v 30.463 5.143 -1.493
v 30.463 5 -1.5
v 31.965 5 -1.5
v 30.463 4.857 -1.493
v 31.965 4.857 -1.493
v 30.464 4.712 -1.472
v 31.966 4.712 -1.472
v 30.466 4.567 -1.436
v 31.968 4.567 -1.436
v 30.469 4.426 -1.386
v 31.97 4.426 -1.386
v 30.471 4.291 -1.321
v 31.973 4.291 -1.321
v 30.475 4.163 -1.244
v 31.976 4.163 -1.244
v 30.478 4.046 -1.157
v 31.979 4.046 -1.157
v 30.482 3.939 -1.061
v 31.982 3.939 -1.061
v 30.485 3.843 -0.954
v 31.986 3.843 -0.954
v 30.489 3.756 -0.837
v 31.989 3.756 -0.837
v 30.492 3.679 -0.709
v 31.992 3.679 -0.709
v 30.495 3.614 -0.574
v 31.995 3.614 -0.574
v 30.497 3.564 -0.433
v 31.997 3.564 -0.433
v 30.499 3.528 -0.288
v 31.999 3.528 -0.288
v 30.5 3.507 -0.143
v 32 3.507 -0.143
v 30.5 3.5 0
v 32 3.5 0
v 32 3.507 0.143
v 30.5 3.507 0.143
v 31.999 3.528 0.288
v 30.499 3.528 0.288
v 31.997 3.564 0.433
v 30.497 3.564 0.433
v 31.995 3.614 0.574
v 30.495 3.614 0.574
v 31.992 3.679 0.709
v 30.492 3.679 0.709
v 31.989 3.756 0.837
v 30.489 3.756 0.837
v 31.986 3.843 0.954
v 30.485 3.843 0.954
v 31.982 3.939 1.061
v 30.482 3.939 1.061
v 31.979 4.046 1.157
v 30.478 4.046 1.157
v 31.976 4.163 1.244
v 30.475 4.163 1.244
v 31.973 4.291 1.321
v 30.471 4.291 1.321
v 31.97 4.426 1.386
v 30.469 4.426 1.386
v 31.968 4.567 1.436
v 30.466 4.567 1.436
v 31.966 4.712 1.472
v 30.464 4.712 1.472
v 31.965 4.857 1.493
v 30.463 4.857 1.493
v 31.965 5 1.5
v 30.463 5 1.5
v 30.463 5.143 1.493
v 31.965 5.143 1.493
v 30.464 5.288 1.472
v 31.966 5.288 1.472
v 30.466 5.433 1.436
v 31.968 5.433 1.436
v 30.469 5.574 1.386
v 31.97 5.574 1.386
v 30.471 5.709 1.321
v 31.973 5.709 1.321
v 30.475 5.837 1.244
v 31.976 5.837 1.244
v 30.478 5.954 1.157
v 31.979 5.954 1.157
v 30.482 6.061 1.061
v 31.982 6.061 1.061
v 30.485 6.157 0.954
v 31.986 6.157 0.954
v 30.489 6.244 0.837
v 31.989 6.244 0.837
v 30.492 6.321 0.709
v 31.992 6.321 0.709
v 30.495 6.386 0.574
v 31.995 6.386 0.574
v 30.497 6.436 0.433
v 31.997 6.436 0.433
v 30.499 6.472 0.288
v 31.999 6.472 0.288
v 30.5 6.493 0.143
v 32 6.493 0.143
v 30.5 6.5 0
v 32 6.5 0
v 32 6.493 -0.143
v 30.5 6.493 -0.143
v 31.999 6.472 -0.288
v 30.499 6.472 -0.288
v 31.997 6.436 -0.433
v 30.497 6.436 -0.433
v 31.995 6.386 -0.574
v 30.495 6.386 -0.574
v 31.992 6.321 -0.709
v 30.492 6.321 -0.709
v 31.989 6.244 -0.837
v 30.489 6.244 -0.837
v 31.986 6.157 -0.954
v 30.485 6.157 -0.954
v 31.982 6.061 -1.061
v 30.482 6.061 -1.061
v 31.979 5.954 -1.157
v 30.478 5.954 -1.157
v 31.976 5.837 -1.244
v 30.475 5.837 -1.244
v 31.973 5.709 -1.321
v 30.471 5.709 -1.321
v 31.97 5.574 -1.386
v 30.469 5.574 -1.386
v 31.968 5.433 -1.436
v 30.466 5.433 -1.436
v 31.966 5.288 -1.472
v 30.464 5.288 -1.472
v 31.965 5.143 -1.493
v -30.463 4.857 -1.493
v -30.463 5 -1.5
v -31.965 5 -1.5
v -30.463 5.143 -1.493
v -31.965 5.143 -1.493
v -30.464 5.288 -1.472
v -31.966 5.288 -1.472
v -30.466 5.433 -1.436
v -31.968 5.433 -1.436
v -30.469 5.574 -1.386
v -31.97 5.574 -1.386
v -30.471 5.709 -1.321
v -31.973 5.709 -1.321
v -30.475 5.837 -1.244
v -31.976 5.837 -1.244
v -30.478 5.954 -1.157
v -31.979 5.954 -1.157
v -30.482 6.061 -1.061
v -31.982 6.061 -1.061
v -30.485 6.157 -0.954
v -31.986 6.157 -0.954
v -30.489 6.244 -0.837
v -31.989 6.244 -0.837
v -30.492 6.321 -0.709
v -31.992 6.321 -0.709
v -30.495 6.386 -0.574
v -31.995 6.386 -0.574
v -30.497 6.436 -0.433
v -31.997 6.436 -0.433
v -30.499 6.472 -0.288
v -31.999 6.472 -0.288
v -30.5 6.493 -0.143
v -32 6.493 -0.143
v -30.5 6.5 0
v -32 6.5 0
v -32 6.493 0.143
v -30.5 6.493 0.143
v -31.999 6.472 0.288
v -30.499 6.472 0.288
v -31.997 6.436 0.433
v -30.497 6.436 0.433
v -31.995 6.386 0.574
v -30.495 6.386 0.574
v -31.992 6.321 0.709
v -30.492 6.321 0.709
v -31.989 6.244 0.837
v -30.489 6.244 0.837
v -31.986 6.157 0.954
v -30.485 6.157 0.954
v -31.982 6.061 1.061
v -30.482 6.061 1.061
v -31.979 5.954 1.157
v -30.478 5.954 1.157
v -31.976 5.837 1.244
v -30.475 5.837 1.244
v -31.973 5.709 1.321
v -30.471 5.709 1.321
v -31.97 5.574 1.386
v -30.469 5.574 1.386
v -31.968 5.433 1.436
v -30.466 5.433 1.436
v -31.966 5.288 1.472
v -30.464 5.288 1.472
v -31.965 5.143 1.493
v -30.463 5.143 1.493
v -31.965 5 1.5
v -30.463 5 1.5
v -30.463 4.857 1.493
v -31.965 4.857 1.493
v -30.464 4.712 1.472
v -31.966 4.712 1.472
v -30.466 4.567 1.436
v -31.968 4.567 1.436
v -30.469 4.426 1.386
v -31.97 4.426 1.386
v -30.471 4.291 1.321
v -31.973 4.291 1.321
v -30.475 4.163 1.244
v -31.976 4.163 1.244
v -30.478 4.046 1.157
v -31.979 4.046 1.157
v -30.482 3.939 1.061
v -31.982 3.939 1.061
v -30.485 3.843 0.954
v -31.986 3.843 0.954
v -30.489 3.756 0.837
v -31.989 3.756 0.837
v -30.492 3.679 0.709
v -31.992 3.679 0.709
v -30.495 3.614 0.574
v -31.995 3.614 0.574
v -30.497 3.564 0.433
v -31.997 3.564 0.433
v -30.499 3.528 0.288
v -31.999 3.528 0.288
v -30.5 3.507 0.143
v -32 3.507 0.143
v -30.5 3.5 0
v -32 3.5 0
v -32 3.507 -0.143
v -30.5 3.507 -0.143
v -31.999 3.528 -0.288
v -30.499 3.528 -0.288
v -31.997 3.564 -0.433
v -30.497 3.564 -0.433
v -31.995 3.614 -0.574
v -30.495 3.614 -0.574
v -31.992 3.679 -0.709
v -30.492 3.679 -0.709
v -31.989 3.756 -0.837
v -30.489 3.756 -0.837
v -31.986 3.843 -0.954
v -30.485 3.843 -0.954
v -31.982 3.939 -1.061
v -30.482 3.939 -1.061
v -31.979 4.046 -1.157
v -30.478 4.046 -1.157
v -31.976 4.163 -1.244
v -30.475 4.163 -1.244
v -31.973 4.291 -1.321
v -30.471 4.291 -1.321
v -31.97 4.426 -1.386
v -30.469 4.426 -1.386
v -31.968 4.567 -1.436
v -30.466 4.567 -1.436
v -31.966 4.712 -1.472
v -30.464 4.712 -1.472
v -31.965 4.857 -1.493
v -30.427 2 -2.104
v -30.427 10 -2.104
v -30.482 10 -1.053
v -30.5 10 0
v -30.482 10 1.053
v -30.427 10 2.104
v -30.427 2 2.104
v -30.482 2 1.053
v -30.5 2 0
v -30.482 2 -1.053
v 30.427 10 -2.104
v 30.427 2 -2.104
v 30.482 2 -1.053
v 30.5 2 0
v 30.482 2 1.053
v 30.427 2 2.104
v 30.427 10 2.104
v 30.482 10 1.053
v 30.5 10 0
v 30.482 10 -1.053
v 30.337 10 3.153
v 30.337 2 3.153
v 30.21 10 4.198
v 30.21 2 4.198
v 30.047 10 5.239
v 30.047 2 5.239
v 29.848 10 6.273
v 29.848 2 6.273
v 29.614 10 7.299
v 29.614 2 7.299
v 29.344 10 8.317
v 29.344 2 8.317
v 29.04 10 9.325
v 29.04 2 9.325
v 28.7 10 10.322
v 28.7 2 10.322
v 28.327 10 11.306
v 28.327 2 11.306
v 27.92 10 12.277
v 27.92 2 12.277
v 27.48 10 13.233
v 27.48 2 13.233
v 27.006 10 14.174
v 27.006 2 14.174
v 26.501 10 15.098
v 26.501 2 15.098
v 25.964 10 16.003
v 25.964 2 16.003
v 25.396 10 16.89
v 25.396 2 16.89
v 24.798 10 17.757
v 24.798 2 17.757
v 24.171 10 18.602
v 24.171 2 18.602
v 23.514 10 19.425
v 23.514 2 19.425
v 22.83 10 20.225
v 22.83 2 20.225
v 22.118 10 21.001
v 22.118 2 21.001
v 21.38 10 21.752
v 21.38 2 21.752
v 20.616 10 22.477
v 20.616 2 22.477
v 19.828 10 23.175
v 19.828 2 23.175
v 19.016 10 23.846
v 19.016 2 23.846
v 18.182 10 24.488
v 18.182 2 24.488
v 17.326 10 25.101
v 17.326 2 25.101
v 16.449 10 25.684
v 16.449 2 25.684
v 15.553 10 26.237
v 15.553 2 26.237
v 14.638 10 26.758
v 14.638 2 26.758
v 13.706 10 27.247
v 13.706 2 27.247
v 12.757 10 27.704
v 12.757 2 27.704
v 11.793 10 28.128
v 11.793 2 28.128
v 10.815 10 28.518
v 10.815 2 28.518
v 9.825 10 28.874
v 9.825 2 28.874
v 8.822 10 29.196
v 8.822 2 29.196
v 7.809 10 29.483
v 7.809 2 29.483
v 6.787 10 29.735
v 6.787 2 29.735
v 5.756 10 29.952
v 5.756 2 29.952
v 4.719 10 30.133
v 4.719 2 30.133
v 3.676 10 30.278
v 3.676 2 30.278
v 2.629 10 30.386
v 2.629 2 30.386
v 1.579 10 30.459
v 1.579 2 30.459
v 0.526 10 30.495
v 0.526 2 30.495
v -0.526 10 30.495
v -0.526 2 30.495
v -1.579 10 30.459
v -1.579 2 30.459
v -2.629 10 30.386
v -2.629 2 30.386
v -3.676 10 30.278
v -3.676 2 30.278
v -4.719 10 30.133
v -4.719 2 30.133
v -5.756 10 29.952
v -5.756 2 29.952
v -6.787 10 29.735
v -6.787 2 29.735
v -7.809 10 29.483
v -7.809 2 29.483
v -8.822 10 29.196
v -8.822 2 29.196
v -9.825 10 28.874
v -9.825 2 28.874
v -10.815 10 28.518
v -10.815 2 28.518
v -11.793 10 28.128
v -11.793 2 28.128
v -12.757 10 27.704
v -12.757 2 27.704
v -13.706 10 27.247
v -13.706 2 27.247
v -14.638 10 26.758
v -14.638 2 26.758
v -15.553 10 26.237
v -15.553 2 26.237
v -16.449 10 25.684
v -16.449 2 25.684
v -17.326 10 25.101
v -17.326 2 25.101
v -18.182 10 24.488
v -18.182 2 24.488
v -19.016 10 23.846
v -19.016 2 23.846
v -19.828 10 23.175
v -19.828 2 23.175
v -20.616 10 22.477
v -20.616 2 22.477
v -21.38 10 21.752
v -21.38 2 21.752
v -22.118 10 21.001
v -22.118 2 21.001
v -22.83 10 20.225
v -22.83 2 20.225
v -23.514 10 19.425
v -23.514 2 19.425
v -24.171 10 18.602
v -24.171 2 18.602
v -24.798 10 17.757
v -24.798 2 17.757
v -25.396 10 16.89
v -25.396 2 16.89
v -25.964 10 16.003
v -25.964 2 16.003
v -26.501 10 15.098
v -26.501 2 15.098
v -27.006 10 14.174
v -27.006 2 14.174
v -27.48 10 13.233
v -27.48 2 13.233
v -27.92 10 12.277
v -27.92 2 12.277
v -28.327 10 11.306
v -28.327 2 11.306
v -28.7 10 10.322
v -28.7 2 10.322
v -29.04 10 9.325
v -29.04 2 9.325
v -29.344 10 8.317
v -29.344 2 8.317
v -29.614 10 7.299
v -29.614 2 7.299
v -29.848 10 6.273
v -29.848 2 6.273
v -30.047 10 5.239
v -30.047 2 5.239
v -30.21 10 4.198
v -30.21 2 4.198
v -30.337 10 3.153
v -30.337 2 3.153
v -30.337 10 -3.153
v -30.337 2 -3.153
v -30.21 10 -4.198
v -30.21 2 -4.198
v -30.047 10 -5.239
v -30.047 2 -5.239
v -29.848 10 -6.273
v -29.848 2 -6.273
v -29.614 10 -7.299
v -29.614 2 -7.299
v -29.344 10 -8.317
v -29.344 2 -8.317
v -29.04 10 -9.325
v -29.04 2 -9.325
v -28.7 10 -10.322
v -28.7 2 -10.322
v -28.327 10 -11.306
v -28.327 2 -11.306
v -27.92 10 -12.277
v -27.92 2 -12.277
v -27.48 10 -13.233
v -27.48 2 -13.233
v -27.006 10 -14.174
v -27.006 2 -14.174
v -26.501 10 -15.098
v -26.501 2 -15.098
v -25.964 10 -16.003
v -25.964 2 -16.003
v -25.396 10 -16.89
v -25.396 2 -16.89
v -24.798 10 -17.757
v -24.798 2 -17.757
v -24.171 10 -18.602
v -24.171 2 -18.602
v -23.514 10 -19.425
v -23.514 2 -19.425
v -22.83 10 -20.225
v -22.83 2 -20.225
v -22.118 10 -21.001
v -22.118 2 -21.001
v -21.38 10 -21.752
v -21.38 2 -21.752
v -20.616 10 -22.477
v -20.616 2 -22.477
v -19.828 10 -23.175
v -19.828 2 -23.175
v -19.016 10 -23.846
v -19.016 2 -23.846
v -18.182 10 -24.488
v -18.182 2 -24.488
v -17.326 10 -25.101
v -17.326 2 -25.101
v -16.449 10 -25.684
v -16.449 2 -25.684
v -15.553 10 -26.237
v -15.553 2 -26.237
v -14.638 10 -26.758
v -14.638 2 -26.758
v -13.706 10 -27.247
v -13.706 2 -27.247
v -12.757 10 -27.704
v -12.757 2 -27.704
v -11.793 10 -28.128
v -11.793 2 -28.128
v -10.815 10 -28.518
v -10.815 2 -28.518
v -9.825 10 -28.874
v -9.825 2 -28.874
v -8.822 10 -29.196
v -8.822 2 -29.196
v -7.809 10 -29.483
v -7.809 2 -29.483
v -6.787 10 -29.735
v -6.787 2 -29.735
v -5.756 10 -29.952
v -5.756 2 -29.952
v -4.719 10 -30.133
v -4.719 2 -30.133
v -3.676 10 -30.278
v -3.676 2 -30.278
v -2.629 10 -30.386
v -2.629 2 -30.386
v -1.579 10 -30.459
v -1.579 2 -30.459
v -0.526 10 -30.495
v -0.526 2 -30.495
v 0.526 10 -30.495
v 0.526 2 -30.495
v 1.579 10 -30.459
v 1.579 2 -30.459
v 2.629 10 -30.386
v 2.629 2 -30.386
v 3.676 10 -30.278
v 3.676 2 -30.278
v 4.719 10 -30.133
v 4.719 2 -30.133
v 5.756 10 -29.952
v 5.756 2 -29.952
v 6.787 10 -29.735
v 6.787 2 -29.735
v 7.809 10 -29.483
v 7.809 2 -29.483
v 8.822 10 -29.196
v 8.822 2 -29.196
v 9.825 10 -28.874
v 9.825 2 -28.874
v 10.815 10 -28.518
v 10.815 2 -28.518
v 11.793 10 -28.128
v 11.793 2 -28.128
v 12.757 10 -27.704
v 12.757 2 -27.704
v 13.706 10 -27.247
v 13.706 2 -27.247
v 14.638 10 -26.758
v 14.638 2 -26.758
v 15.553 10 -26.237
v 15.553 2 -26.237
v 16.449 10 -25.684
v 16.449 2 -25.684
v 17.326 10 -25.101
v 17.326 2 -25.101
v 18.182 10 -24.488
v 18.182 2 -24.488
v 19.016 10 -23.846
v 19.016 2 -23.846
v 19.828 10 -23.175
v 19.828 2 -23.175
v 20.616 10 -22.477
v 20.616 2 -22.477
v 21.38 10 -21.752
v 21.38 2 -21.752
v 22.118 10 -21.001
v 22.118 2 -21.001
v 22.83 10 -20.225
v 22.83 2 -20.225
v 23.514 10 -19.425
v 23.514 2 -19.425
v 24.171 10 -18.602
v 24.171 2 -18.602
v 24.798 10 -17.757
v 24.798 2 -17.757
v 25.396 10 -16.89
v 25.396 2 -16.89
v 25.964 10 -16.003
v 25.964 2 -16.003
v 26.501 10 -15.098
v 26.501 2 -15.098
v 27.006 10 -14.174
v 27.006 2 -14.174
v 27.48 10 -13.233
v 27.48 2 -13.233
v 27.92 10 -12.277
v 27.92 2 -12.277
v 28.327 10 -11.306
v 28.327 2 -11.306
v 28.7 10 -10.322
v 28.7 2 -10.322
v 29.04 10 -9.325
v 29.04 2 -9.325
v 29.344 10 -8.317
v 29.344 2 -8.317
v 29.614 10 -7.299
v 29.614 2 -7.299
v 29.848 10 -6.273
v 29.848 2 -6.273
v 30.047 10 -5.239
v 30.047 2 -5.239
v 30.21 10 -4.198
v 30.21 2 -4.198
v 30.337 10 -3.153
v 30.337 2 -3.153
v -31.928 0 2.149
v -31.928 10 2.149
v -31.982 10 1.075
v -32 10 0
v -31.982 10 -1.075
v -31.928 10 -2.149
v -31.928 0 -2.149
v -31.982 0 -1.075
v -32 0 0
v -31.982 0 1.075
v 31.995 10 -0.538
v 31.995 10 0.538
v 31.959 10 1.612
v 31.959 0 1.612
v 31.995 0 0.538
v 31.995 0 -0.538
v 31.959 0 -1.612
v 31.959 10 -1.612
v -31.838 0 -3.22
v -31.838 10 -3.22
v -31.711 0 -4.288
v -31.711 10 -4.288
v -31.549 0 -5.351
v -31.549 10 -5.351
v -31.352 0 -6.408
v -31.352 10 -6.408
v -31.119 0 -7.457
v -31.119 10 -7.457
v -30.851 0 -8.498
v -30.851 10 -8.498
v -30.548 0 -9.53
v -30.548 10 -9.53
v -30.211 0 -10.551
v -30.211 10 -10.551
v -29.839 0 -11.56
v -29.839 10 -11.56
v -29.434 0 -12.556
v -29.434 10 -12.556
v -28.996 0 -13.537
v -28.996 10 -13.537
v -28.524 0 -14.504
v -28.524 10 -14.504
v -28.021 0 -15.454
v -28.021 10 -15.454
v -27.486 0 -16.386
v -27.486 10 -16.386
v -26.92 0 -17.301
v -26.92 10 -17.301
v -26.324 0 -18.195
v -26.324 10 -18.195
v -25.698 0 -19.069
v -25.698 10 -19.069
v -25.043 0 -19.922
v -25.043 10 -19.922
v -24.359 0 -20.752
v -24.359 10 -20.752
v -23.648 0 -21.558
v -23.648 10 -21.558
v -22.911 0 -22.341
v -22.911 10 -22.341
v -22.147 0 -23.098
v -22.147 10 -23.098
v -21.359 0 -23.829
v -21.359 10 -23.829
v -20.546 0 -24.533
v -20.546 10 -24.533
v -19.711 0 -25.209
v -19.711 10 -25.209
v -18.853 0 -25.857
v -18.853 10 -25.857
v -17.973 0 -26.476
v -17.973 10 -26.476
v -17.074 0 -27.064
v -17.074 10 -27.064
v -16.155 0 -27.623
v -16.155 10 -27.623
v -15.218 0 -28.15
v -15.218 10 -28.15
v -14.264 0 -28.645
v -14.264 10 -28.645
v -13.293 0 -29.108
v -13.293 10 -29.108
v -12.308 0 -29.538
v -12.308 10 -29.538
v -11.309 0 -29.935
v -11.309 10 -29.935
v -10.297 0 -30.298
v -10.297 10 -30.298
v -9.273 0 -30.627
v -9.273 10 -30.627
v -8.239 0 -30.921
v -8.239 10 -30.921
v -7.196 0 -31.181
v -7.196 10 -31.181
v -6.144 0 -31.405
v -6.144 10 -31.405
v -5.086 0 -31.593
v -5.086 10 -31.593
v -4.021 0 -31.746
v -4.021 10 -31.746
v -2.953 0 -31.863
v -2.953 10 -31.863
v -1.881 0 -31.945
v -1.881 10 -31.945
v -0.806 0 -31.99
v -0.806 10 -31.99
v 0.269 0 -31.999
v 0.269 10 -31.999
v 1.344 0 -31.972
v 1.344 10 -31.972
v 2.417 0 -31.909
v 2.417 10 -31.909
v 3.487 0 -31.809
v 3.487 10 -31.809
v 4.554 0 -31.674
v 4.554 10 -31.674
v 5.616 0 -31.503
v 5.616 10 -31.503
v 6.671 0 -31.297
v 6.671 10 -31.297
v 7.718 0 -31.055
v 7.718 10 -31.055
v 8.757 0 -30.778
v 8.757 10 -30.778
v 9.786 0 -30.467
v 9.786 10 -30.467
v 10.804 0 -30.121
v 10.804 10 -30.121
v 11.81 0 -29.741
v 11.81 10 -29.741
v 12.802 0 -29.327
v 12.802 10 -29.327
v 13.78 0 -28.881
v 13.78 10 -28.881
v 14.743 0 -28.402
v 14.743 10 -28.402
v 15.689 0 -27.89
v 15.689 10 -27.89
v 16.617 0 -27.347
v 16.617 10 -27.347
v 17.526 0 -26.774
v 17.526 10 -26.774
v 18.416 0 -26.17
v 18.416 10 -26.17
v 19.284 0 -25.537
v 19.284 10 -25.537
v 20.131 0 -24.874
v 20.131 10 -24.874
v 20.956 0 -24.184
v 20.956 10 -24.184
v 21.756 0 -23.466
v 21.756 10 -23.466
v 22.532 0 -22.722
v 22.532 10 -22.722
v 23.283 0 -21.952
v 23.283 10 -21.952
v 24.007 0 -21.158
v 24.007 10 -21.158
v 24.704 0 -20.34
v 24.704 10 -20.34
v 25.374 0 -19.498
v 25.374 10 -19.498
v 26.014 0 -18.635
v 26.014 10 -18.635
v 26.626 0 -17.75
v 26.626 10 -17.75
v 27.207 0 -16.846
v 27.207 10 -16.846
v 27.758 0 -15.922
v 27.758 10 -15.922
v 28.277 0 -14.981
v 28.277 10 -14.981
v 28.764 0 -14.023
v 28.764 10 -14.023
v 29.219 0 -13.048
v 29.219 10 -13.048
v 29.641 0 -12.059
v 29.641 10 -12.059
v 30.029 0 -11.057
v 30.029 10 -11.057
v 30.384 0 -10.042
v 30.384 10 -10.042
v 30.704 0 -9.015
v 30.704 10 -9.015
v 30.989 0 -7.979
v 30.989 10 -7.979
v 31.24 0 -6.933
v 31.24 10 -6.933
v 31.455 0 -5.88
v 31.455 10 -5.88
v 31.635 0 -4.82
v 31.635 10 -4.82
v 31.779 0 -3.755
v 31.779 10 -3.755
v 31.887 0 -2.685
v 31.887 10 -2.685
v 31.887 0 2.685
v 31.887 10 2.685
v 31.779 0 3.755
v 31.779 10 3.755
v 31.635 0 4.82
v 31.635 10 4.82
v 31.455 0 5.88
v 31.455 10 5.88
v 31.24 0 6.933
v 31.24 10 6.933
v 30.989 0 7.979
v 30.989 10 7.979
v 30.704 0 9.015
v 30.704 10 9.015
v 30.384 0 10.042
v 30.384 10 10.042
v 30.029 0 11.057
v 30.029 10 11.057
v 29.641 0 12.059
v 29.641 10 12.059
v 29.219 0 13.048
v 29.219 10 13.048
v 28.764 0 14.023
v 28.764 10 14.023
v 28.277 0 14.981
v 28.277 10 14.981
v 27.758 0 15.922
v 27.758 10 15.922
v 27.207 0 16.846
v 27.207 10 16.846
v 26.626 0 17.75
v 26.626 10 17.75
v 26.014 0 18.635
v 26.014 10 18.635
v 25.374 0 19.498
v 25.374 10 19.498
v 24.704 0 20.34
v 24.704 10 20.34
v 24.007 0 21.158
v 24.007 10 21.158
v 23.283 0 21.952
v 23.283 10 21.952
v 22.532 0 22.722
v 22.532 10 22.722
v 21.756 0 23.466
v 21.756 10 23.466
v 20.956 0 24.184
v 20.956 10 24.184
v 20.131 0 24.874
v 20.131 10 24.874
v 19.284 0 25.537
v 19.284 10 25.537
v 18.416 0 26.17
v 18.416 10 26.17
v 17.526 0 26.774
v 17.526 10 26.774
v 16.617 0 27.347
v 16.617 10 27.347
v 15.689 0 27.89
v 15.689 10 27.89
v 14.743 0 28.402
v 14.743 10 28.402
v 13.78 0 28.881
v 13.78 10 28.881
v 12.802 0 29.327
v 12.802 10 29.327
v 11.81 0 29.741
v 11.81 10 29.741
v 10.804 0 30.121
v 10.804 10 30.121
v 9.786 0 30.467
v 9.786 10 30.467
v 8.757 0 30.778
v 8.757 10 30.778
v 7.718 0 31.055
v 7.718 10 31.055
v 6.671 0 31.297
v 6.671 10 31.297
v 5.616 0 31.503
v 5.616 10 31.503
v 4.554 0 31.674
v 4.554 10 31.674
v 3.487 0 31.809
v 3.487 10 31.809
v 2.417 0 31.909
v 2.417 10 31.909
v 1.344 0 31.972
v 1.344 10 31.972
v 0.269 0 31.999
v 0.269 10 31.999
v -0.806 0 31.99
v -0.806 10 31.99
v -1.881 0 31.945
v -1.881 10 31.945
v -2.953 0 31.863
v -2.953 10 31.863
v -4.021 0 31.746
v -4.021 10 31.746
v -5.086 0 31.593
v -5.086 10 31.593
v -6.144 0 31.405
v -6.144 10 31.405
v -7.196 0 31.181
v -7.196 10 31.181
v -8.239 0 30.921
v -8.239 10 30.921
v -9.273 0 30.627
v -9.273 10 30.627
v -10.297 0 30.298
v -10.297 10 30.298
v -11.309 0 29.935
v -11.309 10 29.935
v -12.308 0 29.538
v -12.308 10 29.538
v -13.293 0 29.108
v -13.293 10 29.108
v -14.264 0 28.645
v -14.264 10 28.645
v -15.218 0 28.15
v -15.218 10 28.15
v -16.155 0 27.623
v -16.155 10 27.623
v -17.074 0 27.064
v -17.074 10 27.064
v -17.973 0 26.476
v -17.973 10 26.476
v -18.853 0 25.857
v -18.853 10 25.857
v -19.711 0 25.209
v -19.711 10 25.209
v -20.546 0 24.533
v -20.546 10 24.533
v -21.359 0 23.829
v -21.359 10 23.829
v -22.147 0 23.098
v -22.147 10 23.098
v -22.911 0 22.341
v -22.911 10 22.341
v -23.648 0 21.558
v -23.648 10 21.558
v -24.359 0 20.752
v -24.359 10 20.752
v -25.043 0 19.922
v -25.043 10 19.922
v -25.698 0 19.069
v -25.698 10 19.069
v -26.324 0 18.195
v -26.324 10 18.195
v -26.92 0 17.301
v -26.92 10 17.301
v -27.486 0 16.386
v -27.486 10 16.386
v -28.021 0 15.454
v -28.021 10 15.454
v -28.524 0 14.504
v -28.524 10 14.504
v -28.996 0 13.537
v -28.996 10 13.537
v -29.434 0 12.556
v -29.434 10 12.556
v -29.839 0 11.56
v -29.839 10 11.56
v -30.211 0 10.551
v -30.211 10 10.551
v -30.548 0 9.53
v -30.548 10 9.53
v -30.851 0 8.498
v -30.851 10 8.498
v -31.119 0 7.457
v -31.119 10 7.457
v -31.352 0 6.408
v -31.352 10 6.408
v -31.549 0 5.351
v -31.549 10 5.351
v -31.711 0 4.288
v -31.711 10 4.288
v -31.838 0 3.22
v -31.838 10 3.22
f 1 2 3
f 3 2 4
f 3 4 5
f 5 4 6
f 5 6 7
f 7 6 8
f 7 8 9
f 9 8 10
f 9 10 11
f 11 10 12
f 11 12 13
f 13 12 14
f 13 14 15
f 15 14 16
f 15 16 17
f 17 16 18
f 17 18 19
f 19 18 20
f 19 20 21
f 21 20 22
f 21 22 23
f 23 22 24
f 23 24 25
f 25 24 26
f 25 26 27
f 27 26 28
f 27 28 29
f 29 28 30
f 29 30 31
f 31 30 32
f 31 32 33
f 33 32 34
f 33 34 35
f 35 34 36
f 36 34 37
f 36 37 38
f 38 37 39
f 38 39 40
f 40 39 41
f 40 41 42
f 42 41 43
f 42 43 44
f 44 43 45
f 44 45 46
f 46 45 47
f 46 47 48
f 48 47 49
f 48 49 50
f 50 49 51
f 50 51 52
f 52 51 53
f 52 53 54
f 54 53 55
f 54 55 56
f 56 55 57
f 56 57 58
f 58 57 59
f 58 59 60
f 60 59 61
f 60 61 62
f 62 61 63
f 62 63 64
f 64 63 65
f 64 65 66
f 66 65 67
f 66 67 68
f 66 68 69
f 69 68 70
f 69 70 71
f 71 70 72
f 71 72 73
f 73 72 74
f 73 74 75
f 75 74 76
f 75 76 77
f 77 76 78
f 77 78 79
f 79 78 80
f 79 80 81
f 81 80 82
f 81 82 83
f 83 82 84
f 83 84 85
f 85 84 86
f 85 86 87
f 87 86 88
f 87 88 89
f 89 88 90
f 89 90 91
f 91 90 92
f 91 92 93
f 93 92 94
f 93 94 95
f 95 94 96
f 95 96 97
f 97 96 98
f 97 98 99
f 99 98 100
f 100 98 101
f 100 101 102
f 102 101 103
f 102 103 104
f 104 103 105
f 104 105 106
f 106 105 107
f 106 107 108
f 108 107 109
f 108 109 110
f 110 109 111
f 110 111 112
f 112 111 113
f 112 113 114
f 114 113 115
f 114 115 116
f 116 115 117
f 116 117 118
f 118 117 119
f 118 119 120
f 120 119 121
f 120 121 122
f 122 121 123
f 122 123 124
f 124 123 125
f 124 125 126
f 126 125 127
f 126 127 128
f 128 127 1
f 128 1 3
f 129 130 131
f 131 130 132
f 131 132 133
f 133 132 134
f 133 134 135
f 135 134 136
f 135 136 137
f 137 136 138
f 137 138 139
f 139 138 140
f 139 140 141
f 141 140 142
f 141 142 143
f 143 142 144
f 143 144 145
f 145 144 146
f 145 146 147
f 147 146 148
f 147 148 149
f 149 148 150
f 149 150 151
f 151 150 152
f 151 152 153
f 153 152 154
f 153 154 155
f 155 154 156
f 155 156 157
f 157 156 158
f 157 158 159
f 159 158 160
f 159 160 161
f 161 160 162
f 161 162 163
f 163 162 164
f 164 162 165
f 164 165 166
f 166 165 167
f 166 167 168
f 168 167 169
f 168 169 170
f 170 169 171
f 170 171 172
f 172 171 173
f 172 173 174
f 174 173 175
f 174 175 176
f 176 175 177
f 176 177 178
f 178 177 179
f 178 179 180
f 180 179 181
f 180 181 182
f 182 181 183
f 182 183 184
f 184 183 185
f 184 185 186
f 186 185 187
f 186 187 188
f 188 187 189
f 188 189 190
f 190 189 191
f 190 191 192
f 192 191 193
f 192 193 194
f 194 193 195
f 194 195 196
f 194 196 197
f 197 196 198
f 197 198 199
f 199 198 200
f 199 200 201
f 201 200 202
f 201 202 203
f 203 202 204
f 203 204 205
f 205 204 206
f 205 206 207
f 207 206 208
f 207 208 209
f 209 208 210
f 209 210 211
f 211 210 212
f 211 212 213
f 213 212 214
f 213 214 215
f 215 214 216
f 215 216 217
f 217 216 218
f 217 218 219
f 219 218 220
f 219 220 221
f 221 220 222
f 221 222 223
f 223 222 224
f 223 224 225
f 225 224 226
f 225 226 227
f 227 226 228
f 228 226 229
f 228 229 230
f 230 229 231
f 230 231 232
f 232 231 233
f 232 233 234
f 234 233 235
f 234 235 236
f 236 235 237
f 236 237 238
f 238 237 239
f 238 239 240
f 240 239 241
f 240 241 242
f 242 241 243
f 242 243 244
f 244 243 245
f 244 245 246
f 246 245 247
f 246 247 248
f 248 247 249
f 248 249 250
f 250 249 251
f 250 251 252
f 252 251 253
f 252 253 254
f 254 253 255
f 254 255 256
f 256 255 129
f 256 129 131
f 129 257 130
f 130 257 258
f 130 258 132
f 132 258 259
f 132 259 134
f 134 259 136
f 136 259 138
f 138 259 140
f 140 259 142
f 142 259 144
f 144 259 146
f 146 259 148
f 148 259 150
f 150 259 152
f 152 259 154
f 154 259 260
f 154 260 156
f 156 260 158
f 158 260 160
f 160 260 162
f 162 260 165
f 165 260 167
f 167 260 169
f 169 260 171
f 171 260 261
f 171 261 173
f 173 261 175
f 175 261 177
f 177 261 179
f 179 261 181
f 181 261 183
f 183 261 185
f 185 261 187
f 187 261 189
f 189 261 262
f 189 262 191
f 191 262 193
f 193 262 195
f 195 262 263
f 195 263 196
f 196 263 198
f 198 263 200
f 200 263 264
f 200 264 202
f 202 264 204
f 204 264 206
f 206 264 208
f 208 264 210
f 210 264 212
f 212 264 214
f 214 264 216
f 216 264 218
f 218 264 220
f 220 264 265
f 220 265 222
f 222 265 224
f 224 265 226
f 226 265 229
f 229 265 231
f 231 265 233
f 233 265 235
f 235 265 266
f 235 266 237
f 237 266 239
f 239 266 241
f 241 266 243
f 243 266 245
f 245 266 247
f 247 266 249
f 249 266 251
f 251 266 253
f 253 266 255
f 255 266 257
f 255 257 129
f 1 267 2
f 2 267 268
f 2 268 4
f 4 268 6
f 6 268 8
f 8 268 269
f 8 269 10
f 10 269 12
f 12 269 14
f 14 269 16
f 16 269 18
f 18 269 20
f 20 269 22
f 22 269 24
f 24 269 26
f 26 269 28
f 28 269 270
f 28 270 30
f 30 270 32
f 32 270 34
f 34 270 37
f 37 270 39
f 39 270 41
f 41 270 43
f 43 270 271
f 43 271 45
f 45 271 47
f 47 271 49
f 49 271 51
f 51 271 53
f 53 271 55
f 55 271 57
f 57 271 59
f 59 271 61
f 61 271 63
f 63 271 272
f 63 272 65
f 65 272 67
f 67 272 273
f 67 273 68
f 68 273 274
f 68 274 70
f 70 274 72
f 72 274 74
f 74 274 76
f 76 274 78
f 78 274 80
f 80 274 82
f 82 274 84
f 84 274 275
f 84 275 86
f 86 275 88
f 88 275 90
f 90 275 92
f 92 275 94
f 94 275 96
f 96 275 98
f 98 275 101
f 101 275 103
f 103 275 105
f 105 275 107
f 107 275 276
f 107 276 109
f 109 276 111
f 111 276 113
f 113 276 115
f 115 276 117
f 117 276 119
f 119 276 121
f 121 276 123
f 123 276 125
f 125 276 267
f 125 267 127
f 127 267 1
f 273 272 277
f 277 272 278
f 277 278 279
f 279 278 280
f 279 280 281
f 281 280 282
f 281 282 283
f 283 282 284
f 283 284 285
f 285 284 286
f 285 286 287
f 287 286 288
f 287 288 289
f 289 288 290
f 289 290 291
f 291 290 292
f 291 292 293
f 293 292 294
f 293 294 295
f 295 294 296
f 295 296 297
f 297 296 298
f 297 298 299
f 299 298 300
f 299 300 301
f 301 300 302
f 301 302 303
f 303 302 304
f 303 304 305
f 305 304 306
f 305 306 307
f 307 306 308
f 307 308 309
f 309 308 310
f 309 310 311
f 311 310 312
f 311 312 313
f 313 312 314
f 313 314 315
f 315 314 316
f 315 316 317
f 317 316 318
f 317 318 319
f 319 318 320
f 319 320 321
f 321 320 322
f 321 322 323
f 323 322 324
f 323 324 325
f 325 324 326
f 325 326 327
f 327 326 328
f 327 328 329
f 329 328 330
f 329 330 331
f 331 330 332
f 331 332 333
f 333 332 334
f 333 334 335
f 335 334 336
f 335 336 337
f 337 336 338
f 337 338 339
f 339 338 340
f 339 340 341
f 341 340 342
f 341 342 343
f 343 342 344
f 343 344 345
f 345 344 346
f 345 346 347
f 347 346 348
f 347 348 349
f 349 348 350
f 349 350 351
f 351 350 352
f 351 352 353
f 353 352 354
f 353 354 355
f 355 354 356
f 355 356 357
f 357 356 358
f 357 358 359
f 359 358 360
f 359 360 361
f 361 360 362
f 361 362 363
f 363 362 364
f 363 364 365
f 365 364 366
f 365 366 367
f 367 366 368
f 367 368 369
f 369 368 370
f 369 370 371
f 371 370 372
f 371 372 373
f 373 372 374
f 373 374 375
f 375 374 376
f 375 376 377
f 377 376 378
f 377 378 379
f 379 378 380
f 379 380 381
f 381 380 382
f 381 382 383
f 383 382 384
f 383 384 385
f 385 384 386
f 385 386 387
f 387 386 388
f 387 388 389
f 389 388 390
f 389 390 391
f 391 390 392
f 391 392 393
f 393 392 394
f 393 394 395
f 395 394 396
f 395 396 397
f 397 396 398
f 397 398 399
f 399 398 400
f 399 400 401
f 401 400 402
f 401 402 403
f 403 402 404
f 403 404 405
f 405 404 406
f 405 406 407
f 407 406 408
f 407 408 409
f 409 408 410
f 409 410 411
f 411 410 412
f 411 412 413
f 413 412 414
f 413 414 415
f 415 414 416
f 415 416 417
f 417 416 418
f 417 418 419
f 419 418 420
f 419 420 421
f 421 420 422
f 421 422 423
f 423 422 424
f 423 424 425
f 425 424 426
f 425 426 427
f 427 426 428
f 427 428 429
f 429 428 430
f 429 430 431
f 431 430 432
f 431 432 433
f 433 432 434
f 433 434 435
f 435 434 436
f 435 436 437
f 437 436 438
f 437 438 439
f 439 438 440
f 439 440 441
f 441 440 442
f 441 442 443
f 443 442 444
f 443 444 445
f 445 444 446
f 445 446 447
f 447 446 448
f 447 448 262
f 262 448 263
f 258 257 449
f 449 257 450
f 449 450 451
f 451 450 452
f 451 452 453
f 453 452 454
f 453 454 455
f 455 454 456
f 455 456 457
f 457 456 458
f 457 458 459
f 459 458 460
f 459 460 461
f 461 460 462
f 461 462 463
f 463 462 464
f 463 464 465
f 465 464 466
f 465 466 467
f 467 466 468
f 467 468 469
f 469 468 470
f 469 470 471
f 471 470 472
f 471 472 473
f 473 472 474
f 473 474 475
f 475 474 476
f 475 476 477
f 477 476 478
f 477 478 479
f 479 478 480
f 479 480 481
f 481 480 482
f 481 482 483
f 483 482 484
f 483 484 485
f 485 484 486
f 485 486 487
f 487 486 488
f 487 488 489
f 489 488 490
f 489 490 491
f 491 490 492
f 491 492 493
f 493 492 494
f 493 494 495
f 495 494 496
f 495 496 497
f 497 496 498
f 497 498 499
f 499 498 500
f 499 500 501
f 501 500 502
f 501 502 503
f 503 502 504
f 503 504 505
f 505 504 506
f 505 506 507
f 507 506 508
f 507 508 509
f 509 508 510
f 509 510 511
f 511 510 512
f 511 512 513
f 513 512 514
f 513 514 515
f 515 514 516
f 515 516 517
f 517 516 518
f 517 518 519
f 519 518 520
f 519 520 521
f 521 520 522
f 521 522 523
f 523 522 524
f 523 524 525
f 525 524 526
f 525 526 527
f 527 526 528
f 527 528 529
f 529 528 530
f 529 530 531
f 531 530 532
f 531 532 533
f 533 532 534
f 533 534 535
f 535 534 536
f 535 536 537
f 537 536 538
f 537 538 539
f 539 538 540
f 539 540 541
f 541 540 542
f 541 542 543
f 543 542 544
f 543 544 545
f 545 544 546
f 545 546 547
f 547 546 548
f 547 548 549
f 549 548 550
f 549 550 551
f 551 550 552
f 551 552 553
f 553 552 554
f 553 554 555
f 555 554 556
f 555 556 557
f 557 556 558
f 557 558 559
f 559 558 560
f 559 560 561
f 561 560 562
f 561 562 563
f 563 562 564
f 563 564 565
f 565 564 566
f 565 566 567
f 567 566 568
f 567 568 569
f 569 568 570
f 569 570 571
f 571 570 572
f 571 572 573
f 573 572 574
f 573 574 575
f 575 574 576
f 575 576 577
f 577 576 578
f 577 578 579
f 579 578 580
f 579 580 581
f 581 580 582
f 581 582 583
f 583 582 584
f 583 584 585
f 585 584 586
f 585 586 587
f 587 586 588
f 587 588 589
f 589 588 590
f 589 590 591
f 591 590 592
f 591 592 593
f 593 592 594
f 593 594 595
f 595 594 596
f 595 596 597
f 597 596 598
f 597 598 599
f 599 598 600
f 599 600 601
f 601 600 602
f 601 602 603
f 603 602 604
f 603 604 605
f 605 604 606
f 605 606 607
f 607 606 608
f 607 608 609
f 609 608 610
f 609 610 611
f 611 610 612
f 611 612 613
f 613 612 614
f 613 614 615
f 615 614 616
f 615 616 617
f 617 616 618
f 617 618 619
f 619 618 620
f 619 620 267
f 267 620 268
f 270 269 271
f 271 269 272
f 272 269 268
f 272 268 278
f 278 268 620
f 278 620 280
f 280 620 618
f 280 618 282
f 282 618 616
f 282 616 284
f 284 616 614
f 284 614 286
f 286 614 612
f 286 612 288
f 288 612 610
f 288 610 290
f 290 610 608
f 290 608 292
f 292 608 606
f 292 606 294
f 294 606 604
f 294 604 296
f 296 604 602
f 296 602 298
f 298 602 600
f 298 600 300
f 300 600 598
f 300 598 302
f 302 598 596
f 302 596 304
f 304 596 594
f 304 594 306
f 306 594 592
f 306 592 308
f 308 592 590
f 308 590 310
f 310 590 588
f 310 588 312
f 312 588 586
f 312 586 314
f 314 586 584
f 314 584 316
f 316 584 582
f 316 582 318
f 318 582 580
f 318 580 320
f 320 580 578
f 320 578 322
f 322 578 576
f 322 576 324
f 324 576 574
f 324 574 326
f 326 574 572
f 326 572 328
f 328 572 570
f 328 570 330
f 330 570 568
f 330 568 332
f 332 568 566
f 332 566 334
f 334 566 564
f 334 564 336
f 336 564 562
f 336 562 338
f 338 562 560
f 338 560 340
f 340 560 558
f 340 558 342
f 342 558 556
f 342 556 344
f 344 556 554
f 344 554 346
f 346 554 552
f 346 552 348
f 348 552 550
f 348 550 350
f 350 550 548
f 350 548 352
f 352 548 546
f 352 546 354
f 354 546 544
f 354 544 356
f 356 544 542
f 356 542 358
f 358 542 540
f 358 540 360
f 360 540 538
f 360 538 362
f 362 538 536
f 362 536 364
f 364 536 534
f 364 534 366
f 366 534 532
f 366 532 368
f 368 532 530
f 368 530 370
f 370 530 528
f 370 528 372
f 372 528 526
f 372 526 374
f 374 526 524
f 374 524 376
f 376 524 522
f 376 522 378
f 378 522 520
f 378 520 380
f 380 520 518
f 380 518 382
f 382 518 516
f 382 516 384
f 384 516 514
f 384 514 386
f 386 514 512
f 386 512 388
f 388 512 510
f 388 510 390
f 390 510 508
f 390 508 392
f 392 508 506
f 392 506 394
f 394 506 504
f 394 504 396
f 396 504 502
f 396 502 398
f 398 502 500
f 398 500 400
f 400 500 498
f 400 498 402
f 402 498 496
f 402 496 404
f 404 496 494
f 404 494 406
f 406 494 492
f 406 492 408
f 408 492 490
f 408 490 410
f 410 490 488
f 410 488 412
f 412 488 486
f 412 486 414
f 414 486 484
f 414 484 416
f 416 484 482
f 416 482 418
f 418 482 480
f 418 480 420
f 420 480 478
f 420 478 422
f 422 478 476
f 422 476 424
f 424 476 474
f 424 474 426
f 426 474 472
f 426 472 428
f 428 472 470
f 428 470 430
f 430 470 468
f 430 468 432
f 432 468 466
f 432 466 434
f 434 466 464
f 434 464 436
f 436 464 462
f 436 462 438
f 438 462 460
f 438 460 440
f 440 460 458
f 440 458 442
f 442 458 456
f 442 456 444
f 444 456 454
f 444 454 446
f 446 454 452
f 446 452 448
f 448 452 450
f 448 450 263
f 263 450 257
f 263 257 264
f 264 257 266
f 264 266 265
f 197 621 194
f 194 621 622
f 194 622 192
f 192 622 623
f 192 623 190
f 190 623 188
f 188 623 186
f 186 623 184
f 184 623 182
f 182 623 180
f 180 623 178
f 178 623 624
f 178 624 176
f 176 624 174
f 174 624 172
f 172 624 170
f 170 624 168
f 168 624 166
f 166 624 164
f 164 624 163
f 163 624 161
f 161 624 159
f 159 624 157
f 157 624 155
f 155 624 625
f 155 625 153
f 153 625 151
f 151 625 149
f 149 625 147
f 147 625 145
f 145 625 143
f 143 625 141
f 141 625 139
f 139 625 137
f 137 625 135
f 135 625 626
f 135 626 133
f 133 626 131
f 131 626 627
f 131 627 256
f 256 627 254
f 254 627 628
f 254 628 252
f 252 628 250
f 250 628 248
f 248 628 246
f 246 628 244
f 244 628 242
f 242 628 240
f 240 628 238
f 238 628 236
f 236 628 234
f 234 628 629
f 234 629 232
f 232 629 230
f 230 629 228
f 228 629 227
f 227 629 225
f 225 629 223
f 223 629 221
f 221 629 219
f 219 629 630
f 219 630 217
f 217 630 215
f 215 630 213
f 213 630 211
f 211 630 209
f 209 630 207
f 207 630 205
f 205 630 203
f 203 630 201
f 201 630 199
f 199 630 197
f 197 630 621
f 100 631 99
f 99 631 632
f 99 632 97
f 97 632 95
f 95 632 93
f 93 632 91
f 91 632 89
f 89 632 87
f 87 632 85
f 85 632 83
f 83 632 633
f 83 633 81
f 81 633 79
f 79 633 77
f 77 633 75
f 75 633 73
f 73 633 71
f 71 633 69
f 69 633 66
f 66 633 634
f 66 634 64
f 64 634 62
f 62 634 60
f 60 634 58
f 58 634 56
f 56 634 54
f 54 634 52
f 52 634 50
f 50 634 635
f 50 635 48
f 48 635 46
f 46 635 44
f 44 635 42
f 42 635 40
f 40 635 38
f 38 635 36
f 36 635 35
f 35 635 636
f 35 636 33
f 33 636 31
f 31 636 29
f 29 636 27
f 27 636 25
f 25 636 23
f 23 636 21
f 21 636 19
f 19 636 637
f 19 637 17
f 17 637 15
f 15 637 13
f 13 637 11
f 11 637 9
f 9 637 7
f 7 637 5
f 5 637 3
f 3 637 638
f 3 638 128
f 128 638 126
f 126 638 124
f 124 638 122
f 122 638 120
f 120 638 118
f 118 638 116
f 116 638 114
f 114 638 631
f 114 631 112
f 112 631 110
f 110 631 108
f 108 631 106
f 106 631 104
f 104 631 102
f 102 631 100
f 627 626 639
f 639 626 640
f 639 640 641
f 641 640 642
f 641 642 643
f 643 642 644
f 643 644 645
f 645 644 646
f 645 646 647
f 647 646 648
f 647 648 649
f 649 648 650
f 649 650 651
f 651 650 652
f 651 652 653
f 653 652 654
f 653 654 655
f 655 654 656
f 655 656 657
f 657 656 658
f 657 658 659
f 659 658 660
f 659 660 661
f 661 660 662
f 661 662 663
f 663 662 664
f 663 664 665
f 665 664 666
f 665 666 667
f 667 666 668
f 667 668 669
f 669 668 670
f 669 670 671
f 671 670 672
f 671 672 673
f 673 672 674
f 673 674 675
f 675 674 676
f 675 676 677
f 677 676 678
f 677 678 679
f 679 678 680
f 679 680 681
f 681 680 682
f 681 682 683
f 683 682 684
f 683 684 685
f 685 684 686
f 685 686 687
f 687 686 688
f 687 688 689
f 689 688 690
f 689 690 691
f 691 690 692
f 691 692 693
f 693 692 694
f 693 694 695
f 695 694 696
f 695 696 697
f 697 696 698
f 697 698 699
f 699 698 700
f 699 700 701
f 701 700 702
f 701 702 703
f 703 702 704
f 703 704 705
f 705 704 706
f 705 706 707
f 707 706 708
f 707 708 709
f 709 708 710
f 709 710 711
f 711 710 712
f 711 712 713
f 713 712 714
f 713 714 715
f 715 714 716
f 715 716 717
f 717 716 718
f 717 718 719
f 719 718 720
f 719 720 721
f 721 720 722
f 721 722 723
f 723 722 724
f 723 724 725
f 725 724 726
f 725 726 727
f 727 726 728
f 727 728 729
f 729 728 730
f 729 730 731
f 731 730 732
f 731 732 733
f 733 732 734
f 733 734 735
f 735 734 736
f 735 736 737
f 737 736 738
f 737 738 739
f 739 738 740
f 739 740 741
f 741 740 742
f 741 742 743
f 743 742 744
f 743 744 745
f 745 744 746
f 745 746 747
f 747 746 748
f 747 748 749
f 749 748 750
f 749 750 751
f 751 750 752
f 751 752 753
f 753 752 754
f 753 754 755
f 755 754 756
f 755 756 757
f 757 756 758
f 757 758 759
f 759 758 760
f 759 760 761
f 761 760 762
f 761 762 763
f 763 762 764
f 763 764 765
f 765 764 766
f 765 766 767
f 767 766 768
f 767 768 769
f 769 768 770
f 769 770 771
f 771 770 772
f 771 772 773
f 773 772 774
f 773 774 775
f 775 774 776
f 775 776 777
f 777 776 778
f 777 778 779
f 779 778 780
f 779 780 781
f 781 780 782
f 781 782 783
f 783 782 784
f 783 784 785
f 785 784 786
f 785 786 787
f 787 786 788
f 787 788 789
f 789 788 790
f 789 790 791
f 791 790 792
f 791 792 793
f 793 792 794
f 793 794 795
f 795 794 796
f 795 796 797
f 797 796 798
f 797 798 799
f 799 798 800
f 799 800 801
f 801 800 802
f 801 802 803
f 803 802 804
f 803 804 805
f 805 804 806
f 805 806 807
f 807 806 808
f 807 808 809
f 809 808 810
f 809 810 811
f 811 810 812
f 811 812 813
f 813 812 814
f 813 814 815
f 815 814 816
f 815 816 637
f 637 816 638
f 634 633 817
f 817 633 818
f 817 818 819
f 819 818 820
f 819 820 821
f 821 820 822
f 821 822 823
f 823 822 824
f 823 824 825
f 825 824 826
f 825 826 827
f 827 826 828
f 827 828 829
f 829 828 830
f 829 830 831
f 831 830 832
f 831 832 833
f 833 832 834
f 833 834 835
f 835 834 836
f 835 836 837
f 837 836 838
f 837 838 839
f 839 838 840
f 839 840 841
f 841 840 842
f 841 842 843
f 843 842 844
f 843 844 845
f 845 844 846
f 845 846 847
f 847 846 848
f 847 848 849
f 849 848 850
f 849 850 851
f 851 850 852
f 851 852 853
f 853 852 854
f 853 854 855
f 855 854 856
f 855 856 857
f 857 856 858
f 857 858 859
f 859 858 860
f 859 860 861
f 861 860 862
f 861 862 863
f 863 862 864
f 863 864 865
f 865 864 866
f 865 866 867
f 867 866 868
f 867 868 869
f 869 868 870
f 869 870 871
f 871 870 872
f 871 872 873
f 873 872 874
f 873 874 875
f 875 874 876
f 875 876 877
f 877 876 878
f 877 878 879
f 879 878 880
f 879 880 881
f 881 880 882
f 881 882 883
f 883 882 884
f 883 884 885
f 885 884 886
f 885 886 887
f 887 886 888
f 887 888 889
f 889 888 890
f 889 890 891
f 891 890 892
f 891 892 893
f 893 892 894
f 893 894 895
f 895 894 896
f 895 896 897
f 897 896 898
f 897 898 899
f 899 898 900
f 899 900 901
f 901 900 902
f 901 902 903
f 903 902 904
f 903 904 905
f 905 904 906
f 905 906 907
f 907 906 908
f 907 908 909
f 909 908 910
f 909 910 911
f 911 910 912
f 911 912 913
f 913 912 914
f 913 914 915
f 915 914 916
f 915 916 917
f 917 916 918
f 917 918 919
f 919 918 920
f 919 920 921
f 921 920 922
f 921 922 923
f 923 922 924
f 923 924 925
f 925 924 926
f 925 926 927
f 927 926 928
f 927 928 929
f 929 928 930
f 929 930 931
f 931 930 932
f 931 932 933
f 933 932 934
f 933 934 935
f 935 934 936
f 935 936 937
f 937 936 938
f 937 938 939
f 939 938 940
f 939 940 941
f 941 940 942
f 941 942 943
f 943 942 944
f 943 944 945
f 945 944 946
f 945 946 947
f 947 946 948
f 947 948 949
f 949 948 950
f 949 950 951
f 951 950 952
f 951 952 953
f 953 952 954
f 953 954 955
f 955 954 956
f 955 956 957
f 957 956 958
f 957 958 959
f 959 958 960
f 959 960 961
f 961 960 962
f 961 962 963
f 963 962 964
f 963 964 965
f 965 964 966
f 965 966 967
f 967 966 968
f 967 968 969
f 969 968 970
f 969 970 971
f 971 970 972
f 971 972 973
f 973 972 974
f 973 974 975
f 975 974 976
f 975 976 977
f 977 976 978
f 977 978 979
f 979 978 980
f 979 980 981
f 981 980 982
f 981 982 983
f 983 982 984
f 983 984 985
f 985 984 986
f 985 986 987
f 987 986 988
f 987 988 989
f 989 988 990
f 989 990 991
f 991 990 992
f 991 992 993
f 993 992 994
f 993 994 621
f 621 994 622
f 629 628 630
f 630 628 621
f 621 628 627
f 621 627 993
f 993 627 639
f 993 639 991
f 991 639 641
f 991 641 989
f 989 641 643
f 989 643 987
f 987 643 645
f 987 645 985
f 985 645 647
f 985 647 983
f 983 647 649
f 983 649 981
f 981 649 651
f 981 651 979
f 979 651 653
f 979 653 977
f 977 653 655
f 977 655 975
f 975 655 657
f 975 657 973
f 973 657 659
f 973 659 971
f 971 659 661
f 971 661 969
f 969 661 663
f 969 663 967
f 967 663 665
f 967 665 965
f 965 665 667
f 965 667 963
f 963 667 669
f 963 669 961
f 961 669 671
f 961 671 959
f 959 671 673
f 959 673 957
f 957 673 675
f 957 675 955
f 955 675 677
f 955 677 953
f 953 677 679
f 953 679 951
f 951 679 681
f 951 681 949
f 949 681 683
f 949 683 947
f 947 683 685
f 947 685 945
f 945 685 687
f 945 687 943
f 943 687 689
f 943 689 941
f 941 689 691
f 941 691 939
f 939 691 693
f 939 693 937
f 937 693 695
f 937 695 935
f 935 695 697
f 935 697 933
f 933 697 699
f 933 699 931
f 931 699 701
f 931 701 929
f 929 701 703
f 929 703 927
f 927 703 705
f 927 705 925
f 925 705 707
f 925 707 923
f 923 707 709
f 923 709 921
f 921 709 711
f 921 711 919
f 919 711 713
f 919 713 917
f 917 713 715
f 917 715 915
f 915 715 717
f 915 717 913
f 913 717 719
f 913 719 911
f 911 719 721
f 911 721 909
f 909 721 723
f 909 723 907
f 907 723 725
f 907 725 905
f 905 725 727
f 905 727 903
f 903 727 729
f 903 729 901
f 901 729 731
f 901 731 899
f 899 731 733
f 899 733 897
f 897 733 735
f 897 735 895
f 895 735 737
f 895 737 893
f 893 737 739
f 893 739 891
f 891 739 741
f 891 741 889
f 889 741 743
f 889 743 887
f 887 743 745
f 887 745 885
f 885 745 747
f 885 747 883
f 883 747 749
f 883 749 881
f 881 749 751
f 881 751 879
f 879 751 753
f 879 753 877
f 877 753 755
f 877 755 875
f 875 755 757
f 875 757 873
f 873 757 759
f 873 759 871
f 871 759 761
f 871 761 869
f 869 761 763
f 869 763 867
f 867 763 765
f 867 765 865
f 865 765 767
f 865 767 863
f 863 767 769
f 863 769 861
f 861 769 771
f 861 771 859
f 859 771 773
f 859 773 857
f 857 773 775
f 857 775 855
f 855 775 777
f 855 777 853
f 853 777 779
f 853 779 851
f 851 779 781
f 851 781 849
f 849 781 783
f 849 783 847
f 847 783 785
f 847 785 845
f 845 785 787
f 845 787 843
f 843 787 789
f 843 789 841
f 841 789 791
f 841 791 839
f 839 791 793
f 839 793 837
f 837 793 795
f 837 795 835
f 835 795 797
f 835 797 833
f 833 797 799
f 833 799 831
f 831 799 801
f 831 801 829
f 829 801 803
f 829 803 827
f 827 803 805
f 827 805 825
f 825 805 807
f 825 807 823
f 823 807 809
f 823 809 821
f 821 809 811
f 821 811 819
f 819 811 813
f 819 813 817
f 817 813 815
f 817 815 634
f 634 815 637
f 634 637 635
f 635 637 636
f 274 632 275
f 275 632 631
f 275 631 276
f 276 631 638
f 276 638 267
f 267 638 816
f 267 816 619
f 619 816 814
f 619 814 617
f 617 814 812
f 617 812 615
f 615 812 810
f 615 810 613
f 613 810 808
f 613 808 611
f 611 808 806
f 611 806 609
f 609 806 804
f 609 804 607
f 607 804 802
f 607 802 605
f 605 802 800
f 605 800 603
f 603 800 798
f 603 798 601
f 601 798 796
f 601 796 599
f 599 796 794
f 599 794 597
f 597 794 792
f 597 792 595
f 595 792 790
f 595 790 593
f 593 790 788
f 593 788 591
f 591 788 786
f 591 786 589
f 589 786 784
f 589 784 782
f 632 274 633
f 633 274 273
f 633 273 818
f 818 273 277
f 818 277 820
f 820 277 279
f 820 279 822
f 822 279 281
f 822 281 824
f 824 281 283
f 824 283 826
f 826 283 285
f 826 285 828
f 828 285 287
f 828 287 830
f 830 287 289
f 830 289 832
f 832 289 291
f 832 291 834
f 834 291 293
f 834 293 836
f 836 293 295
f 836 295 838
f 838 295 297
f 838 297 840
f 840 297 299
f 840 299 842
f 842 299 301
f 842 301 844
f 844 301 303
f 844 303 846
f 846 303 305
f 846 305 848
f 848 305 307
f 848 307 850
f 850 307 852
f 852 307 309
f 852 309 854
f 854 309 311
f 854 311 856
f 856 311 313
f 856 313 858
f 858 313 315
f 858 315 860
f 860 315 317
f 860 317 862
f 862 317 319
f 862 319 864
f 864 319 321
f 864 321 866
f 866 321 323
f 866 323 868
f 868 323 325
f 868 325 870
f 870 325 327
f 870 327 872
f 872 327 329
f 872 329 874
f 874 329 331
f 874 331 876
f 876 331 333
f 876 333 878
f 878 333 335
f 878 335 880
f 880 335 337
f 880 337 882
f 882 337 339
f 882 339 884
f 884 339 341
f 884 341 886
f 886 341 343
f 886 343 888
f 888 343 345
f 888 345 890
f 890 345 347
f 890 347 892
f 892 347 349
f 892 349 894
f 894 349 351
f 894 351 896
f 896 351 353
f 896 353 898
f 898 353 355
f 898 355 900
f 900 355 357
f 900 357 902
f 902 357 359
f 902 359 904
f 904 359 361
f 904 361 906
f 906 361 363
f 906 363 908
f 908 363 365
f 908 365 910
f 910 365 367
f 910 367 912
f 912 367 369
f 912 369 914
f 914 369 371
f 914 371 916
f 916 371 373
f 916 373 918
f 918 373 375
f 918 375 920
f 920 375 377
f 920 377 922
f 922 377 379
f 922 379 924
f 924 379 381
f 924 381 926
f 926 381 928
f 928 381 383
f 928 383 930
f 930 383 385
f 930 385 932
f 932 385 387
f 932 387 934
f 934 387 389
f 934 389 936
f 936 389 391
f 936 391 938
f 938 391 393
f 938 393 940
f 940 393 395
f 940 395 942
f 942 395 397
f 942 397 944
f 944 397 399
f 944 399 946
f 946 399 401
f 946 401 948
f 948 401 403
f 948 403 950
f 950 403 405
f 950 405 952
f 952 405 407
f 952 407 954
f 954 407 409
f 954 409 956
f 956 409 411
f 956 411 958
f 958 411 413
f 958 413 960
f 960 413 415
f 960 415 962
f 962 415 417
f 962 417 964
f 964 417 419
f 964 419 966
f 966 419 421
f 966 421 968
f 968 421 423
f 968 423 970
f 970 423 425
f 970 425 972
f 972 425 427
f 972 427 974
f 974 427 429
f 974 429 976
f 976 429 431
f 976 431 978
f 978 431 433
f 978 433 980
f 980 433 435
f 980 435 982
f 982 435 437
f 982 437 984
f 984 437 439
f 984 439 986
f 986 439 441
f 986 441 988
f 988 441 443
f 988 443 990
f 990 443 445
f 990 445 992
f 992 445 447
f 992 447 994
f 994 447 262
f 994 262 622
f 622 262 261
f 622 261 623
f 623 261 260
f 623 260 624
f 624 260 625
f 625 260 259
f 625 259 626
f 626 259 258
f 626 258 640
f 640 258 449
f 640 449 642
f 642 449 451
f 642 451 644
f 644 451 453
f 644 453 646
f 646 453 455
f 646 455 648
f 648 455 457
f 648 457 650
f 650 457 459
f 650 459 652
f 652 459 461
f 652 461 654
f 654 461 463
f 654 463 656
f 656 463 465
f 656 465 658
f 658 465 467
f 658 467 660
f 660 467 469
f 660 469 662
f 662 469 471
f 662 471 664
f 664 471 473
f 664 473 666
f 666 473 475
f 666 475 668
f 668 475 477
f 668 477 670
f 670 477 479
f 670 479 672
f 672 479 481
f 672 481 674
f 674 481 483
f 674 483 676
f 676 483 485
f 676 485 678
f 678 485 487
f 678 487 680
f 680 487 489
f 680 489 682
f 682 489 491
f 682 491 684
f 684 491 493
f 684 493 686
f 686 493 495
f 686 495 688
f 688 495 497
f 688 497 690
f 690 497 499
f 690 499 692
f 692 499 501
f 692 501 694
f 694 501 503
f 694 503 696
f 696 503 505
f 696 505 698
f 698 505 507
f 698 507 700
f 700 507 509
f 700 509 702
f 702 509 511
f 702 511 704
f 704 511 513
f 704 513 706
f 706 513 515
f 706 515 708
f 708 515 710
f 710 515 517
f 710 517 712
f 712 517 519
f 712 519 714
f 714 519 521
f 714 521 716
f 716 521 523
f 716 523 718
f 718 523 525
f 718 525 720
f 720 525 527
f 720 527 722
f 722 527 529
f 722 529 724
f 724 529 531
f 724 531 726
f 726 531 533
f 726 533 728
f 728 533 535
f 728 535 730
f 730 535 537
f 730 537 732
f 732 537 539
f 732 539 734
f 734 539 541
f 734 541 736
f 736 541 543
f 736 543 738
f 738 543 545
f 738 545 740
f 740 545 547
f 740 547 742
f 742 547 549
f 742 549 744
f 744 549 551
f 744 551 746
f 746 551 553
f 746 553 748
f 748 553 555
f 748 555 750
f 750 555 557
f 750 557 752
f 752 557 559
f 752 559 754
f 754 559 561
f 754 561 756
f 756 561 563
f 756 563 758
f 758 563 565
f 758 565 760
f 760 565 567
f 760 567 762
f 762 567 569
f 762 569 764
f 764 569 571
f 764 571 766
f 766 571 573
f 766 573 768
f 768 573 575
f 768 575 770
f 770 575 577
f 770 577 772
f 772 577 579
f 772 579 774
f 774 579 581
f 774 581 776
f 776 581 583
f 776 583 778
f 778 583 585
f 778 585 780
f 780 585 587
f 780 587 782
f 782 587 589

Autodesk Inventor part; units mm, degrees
ref_plane "XZ Plane" through (0, 0, 0) normal (0, 1, 0) x (-1, 0, 0)
ref_plane "XY Plane" through (0, 0, 0) normal (0, 0, 1) x (1, 0, 0)
sketch "Sketch1" plane through (0, 0, 0) normal (0, 1, 0) x (-1, 0, 0)
  circle A0 centre (0, 0) radius 32
  dimension "d0" = 64
extrude "Extrusion1" add sketch "Sketch1" along normal blind 10
sketch "Sketch2" plane through (0, 10, 0) normal (0, 1, 0) x (1, 0, 0)
  circle A0 centre (0, 0) radius 30.5
  dimension "d3" = 61
extrude "Extrusion2" cut sketch "Sketch2" against normal blind 8
ref_plane "Work Plane1" through (32, 0, 0) normal (1, 0, 0) x (0, 1, 0)
sketch "Sketch5" plane through (32, 0, 0) normal (1, 0, 0) x (0, 1, 0)
  circle A0 centre (5, 0) radius 1.5
  line L0 (10, -32) -> (10, 32) projected
  point P0 (0, 0)
  dimension "d7" = 3
  dimension "d8" = 5
extrude "Extrusion3" cut sketch "Sketch5" against normal through all
properties part number "bouchon"
